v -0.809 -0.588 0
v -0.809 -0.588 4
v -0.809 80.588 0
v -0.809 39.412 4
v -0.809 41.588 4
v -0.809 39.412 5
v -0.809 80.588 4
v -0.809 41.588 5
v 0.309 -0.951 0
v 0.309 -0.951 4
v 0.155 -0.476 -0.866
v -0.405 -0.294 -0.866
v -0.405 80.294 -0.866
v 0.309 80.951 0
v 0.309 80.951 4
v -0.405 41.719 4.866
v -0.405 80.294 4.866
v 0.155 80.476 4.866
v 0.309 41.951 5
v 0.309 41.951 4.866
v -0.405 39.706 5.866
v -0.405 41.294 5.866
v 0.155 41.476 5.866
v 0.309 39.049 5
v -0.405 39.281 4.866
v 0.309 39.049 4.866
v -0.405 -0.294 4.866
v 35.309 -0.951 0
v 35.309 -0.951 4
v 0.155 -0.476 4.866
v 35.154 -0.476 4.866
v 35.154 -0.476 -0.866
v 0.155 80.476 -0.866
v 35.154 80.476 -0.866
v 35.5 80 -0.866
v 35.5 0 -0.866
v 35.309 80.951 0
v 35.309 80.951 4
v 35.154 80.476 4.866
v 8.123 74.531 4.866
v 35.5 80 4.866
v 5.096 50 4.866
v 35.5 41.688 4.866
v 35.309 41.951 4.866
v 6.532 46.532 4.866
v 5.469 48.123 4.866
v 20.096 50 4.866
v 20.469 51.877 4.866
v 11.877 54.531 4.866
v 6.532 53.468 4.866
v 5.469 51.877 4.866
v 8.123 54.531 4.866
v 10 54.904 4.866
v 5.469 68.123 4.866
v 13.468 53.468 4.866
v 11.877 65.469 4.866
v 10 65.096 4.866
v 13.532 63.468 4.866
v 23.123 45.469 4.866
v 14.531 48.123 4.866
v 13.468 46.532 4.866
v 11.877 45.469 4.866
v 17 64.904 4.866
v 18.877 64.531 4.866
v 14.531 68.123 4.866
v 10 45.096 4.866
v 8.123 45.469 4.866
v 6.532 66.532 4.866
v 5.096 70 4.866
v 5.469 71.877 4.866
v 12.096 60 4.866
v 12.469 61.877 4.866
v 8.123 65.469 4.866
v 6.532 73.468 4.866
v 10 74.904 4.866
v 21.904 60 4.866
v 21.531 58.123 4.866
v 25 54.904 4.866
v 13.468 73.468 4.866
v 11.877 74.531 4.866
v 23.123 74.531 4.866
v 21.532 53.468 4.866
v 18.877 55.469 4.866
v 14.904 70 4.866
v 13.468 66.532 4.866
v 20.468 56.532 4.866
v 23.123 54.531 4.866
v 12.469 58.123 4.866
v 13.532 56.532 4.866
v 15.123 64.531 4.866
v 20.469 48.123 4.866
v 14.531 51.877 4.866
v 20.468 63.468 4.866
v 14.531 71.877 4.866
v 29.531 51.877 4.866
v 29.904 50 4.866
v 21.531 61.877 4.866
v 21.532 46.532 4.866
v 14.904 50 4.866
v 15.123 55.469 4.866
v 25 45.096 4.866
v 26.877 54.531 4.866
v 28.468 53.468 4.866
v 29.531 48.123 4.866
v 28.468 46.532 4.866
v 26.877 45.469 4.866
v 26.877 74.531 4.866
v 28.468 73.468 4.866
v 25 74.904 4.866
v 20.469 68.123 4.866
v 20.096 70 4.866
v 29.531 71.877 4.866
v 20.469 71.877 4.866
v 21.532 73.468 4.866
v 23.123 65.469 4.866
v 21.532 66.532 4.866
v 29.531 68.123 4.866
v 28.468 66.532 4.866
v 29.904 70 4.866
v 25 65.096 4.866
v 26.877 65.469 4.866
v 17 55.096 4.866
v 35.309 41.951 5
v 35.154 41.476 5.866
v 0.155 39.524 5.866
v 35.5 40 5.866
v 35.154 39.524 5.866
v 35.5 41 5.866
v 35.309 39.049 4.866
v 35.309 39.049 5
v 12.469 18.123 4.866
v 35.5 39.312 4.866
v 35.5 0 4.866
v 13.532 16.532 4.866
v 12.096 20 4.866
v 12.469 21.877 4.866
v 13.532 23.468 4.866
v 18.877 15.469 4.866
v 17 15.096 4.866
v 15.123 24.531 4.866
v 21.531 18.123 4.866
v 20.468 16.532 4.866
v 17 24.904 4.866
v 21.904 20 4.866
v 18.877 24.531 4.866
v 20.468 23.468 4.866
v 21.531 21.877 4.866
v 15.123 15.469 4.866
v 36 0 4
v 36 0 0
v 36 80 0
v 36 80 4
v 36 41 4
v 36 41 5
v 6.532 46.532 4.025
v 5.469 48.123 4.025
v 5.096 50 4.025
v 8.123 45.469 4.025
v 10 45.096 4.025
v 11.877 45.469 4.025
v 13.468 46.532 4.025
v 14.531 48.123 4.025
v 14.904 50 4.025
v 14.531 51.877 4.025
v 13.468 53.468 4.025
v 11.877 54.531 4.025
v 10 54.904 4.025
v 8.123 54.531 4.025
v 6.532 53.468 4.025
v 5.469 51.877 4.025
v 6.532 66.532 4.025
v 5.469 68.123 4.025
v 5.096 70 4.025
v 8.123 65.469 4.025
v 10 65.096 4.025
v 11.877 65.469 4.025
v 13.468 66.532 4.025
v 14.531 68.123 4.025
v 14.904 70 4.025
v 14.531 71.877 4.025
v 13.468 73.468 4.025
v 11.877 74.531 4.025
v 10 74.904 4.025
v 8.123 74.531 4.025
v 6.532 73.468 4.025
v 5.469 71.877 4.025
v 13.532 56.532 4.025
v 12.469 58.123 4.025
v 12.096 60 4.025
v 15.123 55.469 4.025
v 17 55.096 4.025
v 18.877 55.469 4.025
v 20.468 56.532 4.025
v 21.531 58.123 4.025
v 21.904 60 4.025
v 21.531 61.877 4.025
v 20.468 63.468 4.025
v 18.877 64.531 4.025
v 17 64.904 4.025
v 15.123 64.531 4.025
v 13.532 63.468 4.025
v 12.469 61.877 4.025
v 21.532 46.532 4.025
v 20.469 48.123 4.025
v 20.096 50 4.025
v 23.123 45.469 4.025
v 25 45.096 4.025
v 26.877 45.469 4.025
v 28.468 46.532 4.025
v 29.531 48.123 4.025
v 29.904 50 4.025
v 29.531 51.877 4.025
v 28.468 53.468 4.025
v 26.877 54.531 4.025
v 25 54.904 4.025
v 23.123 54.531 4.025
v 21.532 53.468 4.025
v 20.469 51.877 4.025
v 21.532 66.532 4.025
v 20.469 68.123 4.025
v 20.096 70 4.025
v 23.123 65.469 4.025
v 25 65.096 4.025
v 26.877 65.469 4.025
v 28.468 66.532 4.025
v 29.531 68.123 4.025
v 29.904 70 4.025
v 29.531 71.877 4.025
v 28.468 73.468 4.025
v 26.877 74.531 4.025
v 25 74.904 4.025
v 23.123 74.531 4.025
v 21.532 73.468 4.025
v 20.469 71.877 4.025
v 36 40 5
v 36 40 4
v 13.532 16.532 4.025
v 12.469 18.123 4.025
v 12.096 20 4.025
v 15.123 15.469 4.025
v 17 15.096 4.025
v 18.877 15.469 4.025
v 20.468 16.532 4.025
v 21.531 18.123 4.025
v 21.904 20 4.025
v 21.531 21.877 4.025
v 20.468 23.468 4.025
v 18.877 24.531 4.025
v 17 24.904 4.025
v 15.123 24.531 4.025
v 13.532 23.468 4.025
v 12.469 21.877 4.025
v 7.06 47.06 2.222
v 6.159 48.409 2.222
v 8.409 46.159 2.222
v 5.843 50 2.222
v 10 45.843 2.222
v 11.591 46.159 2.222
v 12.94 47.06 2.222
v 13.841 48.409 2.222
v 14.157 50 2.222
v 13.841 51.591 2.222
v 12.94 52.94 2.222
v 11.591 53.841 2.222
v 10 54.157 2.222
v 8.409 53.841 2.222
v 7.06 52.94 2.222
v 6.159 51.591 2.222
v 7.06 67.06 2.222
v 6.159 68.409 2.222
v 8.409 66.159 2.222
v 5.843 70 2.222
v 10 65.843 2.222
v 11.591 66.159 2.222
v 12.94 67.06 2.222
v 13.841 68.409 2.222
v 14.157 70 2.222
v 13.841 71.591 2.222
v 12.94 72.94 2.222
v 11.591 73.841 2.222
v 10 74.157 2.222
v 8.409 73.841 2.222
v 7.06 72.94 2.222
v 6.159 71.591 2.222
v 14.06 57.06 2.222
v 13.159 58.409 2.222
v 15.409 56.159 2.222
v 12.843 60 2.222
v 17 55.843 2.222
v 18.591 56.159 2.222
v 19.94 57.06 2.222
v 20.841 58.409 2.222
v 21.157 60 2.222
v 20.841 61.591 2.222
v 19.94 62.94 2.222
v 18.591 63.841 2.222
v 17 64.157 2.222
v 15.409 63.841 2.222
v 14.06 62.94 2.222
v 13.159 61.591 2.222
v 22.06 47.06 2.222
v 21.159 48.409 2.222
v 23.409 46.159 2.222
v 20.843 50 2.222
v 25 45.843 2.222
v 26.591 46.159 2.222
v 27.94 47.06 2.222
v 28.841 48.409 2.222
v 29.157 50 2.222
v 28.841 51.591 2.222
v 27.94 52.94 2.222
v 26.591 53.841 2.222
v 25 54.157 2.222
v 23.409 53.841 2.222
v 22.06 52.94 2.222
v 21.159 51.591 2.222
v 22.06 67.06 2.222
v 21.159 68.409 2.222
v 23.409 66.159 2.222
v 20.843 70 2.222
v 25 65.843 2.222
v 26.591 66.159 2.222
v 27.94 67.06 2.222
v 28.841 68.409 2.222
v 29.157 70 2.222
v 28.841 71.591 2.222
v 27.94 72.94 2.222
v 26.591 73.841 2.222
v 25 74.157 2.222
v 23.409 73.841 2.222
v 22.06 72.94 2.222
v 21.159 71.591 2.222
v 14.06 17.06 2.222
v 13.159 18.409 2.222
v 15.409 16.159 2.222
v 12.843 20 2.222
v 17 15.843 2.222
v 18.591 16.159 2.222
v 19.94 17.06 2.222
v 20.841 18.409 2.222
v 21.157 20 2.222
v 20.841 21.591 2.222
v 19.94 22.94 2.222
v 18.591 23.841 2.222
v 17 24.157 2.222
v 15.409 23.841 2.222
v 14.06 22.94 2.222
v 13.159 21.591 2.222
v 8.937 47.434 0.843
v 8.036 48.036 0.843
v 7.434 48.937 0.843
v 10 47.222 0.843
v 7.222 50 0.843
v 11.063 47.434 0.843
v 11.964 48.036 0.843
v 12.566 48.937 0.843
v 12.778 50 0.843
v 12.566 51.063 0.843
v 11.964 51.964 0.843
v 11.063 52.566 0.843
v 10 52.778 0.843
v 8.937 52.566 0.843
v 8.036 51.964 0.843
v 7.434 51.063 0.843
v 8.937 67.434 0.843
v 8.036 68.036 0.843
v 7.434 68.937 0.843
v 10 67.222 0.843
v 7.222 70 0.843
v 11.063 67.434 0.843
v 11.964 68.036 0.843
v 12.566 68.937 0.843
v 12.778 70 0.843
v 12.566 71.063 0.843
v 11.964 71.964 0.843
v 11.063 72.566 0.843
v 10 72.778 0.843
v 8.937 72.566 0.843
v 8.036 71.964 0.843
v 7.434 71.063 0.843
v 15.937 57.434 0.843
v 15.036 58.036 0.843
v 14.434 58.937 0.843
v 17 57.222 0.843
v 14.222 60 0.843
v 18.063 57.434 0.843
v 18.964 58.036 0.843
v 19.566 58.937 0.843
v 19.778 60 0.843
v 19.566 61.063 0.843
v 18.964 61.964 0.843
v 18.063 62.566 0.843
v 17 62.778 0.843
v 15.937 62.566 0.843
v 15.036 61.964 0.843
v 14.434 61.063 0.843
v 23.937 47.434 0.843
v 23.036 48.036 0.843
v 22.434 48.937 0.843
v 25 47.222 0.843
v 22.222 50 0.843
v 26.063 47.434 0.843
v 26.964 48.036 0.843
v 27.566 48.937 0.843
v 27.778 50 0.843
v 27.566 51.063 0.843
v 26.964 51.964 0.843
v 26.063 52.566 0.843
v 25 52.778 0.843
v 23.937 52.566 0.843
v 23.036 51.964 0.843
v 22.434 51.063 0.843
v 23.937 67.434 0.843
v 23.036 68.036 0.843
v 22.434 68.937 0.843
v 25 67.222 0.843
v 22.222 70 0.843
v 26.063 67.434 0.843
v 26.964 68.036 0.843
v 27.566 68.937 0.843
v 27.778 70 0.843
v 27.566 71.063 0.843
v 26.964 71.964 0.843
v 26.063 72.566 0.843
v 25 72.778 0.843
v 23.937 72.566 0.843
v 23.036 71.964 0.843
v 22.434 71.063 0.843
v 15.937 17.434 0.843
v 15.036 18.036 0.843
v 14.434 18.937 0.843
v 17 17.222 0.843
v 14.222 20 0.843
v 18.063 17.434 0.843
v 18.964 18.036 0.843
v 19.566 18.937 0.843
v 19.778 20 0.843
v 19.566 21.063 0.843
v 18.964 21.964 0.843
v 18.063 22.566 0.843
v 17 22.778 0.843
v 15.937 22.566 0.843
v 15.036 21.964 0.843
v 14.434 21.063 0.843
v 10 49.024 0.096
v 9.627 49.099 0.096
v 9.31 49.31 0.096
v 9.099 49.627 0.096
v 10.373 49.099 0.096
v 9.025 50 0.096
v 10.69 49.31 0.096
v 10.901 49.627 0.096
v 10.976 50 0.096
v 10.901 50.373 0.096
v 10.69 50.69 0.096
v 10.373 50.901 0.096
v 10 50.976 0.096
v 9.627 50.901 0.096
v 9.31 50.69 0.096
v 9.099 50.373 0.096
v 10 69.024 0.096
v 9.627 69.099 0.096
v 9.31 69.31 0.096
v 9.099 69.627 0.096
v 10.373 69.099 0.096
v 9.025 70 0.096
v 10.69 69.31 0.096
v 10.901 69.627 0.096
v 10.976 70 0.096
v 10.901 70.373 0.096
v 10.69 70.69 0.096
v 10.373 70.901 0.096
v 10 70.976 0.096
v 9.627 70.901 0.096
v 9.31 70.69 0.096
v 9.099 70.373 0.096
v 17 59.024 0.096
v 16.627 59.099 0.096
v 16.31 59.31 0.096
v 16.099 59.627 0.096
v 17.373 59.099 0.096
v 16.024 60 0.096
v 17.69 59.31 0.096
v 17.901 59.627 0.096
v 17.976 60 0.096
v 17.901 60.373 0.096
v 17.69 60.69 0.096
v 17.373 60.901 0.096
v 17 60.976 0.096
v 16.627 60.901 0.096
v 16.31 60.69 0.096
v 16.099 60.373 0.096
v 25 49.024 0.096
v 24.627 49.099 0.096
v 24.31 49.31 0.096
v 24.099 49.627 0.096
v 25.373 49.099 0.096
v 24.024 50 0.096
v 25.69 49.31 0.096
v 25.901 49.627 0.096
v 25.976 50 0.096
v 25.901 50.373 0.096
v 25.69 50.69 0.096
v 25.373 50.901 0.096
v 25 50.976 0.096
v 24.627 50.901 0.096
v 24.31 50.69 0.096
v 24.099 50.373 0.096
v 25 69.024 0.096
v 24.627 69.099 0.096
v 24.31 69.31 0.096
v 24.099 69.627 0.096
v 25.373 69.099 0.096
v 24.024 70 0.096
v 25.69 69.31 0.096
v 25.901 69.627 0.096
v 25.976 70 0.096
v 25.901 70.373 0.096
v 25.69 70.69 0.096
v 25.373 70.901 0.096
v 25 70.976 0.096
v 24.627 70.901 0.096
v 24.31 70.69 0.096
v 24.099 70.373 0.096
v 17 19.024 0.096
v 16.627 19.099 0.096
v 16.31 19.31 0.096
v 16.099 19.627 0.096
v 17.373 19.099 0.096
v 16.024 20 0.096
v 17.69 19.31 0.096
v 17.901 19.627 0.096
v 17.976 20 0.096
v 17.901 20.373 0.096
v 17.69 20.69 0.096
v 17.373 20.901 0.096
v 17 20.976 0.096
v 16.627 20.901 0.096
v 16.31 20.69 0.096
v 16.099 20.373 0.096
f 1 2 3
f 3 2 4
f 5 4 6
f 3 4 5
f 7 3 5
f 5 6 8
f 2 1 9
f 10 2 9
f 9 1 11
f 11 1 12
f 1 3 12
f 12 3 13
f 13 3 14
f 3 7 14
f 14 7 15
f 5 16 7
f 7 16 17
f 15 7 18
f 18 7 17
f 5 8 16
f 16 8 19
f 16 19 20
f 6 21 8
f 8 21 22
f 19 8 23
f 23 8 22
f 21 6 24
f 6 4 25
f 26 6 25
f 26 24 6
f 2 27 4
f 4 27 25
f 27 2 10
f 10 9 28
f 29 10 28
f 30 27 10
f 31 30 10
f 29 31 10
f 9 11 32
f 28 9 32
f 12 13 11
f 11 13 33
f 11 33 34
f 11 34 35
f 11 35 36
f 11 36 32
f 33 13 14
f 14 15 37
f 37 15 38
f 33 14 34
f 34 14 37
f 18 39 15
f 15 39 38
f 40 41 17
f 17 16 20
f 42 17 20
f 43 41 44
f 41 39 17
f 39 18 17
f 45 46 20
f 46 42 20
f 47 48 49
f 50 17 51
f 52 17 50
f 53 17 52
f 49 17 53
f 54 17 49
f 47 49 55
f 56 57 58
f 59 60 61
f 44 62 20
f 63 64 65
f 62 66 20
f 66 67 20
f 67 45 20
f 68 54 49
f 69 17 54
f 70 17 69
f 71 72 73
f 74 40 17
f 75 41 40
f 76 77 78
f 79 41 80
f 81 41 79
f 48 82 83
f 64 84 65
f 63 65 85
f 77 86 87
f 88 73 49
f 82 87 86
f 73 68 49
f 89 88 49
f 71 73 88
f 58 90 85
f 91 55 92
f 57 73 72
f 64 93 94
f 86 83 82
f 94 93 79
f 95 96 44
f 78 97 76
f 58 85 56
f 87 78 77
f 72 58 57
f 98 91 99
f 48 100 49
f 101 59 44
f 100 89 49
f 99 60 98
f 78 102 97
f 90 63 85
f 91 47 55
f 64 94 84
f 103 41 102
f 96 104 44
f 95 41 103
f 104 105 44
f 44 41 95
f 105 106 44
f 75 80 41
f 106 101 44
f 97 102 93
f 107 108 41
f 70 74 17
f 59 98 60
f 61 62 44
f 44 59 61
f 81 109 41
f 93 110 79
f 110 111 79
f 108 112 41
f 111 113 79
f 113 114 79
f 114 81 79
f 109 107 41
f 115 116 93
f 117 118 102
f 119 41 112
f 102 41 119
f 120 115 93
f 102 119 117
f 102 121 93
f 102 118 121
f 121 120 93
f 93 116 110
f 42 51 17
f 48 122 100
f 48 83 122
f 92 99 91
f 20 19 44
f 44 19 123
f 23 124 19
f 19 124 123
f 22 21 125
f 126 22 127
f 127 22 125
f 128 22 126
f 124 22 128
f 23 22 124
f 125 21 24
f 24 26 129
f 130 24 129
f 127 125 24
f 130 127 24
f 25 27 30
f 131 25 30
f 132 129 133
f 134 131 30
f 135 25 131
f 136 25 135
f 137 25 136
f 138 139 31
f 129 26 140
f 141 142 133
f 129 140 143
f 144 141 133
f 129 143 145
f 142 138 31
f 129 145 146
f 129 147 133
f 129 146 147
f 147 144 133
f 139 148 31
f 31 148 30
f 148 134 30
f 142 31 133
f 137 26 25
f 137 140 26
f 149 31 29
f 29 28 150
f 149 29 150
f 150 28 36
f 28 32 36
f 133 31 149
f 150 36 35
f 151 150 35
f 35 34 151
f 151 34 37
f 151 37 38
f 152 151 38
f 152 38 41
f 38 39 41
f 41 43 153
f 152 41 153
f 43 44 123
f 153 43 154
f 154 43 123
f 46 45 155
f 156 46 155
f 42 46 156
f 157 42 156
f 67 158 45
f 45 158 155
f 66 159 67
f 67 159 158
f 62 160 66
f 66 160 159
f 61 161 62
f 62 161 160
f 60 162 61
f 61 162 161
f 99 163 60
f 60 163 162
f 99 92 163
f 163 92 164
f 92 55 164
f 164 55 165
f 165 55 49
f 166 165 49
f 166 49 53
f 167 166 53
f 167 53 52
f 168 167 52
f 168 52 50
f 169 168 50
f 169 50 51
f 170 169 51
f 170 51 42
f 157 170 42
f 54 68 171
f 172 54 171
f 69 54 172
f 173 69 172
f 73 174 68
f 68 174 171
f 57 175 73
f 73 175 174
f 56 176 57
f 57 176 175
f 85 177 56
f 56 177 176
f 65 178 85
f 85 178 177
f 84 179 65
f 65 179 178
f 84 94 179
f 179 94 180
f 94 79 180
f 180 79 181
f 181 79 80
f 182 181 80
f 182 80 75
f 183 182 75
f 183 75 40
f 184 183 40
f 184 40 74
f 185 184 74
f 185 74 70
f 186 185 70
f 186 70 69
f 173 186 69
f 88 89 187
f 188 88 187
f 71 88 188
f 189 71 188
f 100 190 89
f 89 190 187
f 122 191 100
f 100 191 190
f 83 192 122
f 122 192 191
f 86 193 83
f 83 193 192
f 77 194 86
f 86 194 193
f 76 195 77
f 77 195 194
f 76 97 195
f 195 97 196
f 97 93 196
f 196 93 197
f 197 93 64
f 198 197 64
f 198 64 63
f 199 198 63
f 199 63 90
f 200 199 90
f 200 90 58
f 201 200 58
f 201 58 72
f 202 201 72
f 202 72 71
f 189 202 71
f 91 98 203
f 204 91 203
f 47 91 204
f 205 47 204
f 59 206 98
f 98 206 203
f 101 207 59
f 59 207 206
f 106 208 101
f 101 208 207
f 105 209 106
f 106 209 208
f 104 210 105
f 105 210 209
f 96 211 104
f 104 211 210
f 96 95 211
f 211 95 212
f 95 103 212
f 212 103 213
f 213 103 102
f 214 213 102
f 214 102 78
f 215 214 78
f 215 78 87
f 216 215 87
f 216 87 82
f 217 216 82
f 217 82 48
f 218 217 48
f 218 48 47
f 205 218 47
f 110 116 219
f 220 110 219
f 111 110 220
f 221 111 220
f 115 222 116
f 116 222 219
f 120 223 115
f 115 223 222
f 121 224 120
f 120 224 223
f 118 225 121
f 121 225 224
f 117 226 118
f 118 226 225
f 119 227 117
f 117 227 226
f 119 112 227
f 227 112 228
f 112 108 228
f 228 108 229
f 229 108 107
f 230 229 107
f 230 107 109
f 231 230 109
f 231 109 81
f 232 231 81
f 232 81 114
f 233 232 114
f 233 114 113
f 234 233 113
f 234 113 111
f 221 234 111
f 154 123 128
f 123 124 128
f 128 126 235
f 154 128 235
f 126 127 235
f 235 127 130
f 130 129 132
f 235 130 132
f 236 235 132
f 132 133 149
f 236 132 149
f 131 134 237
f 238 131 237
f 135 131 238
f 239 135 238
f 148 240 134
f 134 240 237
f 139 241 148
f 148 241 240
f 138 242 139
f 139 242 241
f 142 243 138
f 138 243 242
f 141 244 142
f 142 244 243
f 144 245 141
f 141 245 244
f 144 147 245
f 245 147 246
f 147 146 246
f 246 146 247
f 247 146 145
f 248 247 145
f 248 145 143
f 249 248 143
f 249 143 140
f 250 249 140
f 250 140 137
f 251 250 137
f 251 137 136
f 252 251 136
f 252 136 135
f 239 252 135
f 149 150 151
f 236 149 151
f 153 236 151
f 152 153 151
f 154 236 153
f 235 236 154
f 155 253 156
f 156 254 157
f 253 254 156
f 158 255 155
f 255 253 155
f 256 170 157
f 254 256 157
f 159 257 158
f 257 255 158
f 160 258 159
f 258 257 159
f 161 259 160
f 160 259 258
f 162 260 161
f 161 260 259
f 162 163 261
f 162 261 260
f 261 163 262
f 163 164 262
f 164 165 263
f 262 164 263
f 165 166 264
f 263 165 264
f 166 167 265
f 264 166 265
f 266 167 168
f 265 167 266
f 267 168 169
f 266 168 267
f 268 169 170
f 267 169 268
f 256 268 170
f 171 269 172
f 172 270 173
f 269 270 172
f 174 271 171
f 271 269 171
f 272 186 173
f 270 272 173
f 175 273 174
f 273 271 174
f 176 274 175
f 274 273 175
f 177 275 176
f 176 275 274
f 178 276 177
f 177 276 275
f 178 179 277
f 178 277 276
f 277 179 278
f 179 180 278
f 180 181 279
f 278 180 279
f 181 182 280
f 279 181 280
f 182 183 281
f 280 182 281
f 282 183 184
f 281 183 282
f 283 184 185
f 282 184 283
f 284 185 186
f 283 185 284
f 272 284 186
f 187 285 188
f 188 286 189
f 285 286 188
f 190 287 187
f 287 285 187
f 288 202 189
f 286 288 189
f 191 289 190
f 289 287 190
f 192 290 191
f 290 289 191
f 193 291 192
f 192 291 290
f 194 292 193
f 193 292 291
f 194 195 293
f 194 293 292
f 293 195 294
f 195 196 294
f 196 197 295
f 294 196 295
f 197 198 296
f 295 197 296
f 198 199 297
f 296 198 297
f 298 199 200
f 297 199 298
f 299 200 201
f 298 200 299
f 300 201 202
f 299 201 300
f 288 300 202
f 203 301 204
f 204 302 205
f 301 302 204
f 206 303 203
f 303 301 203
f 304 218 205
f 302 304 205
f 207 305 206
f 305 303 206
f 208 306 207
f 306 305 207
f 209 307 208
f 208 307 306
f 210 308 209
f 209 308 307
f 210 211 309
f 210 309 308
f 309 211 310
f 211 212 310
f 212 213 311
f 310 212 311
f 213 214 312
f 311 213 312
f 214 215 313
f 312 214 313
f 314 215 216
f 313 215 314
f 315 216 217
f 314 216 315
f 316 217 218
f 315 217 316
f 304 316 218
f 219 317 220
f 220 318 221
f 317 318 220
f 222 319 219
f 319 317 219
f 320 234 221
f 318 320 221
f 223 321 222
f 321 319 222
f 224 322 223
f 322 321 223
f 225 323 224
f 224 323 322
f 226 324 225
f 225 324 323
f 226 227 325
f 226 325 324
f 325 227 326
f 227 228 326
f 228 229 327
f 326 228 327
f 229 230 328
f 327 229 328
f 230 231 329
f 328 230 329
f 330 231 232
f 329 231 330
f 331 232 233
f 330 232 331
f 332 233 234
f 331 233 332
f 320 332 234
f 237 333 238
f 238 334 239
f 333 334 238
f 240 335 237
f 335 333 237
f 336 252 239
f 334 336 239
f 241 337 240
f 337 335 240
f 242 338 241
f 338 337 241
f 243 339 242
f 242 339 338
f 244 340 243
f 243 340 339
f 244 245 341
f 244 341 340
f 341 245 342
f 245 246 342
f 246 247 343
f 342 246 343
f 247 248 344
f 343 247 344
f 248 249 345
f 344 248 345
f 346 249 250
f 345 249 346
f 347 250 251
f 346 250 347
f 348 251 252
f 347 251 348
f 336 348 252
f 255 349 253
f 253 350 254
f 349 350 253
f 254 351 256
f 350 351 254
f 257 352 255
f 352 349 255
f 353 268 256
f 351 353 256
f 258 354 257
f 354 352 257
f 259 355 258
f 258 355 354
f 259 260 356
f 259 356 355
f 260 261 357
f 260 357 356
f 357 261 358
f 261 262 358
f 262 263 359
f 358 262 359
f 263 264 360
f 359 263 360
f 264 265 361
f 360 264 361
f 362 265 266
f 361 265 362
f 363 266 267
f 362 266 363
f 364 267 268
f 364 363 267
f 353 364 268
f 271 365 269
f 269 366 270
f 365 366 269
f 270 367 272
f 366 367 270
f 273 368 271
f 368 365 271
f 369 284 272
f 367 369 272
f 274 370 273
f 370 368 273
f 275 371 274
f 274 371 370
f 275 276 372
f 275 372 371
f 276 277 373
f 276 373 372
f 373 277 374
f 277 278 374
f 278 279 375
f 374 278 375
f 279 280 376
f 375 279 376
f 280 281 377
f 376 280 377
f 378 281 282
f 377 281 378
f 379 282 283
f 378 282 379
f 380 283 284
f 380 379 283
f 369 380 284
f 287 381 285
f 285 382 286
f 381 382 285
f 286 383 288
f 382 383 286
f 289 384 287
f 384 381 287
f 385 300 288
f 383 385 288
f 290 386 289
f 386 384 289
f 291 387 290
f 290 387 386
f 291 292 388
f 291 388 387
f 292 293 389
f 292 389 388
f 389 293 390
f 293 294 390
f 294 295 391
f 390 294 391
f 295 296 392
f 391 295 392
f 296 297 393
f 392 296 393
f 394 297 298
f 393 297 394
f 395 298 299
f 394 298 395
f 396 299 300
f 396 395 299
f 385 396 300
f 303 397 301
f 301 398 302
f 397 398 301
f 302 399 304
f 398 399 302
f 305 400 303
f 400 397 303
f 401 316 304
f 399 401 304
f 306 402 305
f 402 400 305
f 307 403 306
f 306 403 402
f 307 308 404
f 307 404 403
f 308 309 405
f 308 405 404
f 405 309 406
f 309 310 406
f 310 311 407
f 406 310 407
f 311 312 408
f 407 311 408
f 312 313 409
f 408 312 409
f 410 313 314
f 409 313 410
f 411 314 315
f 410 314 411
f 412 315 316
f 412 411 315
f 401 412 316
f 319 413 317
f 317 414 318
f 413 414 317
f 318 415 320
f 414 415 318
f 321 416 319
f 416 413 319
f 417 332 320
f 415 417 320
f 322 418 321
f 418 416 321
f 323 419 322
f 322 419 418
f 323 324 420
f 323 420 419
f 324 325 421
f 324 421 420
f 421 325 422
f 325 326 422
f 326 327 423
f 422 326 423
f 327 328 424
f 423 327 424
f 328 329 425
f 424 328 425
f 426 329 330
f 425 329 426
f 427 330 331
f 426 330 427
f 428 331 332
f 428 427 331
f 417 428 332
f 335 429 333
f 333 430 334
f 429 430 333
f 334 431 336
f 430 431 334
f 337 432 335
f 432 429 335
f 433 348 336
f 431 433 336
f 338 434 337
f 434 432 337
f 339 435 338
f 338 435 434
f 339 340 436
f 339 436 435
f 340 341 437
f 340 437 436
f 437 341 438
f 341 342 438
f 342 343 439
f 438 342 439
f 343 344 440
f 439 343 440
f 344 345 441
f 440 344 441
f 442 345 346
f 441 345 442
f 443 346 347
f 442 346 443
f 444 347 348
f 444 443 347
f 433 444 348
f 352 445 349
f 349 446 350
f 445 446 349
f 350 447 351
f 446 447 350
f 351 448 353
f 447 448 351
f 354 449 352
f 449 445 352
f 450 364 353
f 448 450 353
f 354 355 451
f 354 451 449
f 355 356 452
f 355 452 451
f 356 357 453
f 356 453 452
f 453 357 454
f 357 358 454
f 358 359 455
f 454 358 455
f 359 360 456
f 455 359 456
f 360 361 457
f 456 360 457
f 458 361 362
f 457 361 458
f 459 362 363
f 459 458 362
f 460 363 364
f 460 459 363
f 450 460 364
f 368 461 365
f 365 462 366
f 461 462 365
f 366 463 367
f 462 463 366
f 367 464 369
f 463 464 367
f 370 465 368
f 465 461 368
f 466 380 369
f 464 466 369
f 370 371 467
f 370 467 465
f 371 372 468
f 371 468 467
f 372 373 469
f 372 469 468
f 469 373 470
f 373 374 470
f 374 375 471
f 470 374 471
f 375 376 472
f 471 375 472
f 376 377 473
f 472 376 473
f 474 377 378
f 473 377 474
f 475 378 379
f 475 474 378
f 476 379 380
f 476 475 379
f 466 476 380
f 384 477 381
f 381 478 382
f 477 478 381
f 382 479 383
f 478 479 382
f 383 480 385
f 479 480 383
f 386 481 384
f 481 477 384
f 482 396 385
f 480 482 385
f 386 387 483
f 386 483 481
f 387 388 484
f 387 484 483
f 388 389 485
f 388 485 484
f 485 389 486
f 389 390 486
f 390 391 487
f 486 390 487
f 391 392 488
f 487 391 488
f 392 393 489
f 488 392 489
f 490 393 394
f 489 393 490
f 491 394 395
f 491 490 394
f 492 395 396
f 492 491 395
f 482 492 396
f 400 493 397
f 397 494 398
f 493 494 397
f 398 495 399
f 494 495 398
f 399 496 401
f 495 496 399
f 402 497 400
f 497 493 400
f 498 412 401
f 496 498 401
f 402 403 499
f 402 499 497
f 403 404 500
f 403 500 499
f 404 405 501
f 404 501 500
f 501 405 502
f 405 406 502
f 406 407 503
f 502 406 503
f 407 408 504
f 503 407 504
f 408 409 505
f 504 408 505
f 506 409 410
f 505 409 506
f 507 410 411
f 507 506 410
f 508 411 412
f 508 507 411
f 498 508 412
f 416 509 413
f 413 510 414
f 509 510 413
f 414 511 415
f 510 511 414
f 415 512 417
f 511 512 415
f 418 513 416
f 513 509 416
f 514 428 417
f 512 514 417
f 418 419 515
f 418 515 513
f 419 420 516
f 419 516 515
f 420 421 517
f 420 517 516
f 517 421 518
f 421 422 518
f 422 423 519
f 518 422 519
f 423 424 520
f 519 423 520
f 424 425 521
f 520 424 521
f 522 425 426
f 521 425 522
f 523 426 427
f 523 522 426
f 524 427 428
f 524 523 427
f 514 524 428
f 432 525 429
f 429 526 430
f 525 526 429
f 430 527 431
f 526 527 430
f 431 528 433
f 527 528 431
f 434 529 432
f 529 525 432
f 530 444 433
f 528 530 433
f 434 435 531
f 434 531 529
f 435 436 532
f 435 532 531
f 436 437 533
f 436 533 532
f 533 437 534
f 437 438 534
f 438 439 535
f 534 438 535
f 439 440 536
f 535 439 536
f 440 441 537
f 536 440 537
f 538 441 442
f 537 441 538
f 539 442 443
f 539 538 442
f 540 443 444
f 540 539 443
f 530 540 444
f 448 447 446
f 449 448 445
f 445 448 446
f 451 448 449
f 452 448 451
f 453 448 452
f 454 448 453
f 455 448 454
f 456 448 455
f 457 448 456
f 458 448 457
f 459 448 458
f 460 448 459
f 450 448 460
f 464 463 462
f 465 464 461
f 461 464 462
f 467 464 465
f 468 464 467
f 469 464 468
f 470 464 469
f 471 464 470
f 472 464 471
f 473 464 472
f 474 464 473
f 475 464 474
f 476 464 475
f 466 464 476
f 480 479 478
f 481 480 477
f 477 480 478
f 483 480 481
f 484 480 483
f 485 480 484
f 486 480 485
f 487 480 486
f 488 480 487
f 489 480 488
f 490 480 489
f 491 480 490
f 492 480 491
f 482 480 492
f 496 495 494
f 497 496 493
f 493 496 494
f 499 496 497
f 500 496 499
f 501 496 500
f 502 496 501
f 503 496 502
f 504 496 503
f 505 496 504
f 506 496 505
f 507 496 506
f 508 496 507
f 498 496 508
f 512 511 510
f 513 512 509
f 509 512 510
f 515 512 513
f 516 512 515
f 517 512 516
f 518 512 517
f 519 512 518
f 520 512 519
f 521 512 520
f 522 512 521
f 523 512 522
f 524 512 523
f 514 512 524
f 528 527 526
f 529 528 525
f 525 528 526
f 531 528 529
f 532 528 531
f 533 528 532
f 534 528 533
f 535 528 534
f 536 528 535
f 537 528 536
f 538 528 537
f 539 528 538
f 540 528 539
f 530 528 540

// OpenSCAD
// Loguncov Maxim 13.12.13


//$fn=128;


translate([0,40,0])
minkowski()
{cube([35,1,5]);
sphere(1);
}

difference() {

//основа
minkowski()
{cube([35,80,4]);
sphere(1);
}

//отверстия
translate([17,20,5])sphere(5);

translate([10,70,5])sphere(5);
translate([25,50,5])sphere(5);
translate([25,70,5])sphere(5);
translate([10,50,5])sphere(5);
translate([17,60,5])sphere(5);



}
